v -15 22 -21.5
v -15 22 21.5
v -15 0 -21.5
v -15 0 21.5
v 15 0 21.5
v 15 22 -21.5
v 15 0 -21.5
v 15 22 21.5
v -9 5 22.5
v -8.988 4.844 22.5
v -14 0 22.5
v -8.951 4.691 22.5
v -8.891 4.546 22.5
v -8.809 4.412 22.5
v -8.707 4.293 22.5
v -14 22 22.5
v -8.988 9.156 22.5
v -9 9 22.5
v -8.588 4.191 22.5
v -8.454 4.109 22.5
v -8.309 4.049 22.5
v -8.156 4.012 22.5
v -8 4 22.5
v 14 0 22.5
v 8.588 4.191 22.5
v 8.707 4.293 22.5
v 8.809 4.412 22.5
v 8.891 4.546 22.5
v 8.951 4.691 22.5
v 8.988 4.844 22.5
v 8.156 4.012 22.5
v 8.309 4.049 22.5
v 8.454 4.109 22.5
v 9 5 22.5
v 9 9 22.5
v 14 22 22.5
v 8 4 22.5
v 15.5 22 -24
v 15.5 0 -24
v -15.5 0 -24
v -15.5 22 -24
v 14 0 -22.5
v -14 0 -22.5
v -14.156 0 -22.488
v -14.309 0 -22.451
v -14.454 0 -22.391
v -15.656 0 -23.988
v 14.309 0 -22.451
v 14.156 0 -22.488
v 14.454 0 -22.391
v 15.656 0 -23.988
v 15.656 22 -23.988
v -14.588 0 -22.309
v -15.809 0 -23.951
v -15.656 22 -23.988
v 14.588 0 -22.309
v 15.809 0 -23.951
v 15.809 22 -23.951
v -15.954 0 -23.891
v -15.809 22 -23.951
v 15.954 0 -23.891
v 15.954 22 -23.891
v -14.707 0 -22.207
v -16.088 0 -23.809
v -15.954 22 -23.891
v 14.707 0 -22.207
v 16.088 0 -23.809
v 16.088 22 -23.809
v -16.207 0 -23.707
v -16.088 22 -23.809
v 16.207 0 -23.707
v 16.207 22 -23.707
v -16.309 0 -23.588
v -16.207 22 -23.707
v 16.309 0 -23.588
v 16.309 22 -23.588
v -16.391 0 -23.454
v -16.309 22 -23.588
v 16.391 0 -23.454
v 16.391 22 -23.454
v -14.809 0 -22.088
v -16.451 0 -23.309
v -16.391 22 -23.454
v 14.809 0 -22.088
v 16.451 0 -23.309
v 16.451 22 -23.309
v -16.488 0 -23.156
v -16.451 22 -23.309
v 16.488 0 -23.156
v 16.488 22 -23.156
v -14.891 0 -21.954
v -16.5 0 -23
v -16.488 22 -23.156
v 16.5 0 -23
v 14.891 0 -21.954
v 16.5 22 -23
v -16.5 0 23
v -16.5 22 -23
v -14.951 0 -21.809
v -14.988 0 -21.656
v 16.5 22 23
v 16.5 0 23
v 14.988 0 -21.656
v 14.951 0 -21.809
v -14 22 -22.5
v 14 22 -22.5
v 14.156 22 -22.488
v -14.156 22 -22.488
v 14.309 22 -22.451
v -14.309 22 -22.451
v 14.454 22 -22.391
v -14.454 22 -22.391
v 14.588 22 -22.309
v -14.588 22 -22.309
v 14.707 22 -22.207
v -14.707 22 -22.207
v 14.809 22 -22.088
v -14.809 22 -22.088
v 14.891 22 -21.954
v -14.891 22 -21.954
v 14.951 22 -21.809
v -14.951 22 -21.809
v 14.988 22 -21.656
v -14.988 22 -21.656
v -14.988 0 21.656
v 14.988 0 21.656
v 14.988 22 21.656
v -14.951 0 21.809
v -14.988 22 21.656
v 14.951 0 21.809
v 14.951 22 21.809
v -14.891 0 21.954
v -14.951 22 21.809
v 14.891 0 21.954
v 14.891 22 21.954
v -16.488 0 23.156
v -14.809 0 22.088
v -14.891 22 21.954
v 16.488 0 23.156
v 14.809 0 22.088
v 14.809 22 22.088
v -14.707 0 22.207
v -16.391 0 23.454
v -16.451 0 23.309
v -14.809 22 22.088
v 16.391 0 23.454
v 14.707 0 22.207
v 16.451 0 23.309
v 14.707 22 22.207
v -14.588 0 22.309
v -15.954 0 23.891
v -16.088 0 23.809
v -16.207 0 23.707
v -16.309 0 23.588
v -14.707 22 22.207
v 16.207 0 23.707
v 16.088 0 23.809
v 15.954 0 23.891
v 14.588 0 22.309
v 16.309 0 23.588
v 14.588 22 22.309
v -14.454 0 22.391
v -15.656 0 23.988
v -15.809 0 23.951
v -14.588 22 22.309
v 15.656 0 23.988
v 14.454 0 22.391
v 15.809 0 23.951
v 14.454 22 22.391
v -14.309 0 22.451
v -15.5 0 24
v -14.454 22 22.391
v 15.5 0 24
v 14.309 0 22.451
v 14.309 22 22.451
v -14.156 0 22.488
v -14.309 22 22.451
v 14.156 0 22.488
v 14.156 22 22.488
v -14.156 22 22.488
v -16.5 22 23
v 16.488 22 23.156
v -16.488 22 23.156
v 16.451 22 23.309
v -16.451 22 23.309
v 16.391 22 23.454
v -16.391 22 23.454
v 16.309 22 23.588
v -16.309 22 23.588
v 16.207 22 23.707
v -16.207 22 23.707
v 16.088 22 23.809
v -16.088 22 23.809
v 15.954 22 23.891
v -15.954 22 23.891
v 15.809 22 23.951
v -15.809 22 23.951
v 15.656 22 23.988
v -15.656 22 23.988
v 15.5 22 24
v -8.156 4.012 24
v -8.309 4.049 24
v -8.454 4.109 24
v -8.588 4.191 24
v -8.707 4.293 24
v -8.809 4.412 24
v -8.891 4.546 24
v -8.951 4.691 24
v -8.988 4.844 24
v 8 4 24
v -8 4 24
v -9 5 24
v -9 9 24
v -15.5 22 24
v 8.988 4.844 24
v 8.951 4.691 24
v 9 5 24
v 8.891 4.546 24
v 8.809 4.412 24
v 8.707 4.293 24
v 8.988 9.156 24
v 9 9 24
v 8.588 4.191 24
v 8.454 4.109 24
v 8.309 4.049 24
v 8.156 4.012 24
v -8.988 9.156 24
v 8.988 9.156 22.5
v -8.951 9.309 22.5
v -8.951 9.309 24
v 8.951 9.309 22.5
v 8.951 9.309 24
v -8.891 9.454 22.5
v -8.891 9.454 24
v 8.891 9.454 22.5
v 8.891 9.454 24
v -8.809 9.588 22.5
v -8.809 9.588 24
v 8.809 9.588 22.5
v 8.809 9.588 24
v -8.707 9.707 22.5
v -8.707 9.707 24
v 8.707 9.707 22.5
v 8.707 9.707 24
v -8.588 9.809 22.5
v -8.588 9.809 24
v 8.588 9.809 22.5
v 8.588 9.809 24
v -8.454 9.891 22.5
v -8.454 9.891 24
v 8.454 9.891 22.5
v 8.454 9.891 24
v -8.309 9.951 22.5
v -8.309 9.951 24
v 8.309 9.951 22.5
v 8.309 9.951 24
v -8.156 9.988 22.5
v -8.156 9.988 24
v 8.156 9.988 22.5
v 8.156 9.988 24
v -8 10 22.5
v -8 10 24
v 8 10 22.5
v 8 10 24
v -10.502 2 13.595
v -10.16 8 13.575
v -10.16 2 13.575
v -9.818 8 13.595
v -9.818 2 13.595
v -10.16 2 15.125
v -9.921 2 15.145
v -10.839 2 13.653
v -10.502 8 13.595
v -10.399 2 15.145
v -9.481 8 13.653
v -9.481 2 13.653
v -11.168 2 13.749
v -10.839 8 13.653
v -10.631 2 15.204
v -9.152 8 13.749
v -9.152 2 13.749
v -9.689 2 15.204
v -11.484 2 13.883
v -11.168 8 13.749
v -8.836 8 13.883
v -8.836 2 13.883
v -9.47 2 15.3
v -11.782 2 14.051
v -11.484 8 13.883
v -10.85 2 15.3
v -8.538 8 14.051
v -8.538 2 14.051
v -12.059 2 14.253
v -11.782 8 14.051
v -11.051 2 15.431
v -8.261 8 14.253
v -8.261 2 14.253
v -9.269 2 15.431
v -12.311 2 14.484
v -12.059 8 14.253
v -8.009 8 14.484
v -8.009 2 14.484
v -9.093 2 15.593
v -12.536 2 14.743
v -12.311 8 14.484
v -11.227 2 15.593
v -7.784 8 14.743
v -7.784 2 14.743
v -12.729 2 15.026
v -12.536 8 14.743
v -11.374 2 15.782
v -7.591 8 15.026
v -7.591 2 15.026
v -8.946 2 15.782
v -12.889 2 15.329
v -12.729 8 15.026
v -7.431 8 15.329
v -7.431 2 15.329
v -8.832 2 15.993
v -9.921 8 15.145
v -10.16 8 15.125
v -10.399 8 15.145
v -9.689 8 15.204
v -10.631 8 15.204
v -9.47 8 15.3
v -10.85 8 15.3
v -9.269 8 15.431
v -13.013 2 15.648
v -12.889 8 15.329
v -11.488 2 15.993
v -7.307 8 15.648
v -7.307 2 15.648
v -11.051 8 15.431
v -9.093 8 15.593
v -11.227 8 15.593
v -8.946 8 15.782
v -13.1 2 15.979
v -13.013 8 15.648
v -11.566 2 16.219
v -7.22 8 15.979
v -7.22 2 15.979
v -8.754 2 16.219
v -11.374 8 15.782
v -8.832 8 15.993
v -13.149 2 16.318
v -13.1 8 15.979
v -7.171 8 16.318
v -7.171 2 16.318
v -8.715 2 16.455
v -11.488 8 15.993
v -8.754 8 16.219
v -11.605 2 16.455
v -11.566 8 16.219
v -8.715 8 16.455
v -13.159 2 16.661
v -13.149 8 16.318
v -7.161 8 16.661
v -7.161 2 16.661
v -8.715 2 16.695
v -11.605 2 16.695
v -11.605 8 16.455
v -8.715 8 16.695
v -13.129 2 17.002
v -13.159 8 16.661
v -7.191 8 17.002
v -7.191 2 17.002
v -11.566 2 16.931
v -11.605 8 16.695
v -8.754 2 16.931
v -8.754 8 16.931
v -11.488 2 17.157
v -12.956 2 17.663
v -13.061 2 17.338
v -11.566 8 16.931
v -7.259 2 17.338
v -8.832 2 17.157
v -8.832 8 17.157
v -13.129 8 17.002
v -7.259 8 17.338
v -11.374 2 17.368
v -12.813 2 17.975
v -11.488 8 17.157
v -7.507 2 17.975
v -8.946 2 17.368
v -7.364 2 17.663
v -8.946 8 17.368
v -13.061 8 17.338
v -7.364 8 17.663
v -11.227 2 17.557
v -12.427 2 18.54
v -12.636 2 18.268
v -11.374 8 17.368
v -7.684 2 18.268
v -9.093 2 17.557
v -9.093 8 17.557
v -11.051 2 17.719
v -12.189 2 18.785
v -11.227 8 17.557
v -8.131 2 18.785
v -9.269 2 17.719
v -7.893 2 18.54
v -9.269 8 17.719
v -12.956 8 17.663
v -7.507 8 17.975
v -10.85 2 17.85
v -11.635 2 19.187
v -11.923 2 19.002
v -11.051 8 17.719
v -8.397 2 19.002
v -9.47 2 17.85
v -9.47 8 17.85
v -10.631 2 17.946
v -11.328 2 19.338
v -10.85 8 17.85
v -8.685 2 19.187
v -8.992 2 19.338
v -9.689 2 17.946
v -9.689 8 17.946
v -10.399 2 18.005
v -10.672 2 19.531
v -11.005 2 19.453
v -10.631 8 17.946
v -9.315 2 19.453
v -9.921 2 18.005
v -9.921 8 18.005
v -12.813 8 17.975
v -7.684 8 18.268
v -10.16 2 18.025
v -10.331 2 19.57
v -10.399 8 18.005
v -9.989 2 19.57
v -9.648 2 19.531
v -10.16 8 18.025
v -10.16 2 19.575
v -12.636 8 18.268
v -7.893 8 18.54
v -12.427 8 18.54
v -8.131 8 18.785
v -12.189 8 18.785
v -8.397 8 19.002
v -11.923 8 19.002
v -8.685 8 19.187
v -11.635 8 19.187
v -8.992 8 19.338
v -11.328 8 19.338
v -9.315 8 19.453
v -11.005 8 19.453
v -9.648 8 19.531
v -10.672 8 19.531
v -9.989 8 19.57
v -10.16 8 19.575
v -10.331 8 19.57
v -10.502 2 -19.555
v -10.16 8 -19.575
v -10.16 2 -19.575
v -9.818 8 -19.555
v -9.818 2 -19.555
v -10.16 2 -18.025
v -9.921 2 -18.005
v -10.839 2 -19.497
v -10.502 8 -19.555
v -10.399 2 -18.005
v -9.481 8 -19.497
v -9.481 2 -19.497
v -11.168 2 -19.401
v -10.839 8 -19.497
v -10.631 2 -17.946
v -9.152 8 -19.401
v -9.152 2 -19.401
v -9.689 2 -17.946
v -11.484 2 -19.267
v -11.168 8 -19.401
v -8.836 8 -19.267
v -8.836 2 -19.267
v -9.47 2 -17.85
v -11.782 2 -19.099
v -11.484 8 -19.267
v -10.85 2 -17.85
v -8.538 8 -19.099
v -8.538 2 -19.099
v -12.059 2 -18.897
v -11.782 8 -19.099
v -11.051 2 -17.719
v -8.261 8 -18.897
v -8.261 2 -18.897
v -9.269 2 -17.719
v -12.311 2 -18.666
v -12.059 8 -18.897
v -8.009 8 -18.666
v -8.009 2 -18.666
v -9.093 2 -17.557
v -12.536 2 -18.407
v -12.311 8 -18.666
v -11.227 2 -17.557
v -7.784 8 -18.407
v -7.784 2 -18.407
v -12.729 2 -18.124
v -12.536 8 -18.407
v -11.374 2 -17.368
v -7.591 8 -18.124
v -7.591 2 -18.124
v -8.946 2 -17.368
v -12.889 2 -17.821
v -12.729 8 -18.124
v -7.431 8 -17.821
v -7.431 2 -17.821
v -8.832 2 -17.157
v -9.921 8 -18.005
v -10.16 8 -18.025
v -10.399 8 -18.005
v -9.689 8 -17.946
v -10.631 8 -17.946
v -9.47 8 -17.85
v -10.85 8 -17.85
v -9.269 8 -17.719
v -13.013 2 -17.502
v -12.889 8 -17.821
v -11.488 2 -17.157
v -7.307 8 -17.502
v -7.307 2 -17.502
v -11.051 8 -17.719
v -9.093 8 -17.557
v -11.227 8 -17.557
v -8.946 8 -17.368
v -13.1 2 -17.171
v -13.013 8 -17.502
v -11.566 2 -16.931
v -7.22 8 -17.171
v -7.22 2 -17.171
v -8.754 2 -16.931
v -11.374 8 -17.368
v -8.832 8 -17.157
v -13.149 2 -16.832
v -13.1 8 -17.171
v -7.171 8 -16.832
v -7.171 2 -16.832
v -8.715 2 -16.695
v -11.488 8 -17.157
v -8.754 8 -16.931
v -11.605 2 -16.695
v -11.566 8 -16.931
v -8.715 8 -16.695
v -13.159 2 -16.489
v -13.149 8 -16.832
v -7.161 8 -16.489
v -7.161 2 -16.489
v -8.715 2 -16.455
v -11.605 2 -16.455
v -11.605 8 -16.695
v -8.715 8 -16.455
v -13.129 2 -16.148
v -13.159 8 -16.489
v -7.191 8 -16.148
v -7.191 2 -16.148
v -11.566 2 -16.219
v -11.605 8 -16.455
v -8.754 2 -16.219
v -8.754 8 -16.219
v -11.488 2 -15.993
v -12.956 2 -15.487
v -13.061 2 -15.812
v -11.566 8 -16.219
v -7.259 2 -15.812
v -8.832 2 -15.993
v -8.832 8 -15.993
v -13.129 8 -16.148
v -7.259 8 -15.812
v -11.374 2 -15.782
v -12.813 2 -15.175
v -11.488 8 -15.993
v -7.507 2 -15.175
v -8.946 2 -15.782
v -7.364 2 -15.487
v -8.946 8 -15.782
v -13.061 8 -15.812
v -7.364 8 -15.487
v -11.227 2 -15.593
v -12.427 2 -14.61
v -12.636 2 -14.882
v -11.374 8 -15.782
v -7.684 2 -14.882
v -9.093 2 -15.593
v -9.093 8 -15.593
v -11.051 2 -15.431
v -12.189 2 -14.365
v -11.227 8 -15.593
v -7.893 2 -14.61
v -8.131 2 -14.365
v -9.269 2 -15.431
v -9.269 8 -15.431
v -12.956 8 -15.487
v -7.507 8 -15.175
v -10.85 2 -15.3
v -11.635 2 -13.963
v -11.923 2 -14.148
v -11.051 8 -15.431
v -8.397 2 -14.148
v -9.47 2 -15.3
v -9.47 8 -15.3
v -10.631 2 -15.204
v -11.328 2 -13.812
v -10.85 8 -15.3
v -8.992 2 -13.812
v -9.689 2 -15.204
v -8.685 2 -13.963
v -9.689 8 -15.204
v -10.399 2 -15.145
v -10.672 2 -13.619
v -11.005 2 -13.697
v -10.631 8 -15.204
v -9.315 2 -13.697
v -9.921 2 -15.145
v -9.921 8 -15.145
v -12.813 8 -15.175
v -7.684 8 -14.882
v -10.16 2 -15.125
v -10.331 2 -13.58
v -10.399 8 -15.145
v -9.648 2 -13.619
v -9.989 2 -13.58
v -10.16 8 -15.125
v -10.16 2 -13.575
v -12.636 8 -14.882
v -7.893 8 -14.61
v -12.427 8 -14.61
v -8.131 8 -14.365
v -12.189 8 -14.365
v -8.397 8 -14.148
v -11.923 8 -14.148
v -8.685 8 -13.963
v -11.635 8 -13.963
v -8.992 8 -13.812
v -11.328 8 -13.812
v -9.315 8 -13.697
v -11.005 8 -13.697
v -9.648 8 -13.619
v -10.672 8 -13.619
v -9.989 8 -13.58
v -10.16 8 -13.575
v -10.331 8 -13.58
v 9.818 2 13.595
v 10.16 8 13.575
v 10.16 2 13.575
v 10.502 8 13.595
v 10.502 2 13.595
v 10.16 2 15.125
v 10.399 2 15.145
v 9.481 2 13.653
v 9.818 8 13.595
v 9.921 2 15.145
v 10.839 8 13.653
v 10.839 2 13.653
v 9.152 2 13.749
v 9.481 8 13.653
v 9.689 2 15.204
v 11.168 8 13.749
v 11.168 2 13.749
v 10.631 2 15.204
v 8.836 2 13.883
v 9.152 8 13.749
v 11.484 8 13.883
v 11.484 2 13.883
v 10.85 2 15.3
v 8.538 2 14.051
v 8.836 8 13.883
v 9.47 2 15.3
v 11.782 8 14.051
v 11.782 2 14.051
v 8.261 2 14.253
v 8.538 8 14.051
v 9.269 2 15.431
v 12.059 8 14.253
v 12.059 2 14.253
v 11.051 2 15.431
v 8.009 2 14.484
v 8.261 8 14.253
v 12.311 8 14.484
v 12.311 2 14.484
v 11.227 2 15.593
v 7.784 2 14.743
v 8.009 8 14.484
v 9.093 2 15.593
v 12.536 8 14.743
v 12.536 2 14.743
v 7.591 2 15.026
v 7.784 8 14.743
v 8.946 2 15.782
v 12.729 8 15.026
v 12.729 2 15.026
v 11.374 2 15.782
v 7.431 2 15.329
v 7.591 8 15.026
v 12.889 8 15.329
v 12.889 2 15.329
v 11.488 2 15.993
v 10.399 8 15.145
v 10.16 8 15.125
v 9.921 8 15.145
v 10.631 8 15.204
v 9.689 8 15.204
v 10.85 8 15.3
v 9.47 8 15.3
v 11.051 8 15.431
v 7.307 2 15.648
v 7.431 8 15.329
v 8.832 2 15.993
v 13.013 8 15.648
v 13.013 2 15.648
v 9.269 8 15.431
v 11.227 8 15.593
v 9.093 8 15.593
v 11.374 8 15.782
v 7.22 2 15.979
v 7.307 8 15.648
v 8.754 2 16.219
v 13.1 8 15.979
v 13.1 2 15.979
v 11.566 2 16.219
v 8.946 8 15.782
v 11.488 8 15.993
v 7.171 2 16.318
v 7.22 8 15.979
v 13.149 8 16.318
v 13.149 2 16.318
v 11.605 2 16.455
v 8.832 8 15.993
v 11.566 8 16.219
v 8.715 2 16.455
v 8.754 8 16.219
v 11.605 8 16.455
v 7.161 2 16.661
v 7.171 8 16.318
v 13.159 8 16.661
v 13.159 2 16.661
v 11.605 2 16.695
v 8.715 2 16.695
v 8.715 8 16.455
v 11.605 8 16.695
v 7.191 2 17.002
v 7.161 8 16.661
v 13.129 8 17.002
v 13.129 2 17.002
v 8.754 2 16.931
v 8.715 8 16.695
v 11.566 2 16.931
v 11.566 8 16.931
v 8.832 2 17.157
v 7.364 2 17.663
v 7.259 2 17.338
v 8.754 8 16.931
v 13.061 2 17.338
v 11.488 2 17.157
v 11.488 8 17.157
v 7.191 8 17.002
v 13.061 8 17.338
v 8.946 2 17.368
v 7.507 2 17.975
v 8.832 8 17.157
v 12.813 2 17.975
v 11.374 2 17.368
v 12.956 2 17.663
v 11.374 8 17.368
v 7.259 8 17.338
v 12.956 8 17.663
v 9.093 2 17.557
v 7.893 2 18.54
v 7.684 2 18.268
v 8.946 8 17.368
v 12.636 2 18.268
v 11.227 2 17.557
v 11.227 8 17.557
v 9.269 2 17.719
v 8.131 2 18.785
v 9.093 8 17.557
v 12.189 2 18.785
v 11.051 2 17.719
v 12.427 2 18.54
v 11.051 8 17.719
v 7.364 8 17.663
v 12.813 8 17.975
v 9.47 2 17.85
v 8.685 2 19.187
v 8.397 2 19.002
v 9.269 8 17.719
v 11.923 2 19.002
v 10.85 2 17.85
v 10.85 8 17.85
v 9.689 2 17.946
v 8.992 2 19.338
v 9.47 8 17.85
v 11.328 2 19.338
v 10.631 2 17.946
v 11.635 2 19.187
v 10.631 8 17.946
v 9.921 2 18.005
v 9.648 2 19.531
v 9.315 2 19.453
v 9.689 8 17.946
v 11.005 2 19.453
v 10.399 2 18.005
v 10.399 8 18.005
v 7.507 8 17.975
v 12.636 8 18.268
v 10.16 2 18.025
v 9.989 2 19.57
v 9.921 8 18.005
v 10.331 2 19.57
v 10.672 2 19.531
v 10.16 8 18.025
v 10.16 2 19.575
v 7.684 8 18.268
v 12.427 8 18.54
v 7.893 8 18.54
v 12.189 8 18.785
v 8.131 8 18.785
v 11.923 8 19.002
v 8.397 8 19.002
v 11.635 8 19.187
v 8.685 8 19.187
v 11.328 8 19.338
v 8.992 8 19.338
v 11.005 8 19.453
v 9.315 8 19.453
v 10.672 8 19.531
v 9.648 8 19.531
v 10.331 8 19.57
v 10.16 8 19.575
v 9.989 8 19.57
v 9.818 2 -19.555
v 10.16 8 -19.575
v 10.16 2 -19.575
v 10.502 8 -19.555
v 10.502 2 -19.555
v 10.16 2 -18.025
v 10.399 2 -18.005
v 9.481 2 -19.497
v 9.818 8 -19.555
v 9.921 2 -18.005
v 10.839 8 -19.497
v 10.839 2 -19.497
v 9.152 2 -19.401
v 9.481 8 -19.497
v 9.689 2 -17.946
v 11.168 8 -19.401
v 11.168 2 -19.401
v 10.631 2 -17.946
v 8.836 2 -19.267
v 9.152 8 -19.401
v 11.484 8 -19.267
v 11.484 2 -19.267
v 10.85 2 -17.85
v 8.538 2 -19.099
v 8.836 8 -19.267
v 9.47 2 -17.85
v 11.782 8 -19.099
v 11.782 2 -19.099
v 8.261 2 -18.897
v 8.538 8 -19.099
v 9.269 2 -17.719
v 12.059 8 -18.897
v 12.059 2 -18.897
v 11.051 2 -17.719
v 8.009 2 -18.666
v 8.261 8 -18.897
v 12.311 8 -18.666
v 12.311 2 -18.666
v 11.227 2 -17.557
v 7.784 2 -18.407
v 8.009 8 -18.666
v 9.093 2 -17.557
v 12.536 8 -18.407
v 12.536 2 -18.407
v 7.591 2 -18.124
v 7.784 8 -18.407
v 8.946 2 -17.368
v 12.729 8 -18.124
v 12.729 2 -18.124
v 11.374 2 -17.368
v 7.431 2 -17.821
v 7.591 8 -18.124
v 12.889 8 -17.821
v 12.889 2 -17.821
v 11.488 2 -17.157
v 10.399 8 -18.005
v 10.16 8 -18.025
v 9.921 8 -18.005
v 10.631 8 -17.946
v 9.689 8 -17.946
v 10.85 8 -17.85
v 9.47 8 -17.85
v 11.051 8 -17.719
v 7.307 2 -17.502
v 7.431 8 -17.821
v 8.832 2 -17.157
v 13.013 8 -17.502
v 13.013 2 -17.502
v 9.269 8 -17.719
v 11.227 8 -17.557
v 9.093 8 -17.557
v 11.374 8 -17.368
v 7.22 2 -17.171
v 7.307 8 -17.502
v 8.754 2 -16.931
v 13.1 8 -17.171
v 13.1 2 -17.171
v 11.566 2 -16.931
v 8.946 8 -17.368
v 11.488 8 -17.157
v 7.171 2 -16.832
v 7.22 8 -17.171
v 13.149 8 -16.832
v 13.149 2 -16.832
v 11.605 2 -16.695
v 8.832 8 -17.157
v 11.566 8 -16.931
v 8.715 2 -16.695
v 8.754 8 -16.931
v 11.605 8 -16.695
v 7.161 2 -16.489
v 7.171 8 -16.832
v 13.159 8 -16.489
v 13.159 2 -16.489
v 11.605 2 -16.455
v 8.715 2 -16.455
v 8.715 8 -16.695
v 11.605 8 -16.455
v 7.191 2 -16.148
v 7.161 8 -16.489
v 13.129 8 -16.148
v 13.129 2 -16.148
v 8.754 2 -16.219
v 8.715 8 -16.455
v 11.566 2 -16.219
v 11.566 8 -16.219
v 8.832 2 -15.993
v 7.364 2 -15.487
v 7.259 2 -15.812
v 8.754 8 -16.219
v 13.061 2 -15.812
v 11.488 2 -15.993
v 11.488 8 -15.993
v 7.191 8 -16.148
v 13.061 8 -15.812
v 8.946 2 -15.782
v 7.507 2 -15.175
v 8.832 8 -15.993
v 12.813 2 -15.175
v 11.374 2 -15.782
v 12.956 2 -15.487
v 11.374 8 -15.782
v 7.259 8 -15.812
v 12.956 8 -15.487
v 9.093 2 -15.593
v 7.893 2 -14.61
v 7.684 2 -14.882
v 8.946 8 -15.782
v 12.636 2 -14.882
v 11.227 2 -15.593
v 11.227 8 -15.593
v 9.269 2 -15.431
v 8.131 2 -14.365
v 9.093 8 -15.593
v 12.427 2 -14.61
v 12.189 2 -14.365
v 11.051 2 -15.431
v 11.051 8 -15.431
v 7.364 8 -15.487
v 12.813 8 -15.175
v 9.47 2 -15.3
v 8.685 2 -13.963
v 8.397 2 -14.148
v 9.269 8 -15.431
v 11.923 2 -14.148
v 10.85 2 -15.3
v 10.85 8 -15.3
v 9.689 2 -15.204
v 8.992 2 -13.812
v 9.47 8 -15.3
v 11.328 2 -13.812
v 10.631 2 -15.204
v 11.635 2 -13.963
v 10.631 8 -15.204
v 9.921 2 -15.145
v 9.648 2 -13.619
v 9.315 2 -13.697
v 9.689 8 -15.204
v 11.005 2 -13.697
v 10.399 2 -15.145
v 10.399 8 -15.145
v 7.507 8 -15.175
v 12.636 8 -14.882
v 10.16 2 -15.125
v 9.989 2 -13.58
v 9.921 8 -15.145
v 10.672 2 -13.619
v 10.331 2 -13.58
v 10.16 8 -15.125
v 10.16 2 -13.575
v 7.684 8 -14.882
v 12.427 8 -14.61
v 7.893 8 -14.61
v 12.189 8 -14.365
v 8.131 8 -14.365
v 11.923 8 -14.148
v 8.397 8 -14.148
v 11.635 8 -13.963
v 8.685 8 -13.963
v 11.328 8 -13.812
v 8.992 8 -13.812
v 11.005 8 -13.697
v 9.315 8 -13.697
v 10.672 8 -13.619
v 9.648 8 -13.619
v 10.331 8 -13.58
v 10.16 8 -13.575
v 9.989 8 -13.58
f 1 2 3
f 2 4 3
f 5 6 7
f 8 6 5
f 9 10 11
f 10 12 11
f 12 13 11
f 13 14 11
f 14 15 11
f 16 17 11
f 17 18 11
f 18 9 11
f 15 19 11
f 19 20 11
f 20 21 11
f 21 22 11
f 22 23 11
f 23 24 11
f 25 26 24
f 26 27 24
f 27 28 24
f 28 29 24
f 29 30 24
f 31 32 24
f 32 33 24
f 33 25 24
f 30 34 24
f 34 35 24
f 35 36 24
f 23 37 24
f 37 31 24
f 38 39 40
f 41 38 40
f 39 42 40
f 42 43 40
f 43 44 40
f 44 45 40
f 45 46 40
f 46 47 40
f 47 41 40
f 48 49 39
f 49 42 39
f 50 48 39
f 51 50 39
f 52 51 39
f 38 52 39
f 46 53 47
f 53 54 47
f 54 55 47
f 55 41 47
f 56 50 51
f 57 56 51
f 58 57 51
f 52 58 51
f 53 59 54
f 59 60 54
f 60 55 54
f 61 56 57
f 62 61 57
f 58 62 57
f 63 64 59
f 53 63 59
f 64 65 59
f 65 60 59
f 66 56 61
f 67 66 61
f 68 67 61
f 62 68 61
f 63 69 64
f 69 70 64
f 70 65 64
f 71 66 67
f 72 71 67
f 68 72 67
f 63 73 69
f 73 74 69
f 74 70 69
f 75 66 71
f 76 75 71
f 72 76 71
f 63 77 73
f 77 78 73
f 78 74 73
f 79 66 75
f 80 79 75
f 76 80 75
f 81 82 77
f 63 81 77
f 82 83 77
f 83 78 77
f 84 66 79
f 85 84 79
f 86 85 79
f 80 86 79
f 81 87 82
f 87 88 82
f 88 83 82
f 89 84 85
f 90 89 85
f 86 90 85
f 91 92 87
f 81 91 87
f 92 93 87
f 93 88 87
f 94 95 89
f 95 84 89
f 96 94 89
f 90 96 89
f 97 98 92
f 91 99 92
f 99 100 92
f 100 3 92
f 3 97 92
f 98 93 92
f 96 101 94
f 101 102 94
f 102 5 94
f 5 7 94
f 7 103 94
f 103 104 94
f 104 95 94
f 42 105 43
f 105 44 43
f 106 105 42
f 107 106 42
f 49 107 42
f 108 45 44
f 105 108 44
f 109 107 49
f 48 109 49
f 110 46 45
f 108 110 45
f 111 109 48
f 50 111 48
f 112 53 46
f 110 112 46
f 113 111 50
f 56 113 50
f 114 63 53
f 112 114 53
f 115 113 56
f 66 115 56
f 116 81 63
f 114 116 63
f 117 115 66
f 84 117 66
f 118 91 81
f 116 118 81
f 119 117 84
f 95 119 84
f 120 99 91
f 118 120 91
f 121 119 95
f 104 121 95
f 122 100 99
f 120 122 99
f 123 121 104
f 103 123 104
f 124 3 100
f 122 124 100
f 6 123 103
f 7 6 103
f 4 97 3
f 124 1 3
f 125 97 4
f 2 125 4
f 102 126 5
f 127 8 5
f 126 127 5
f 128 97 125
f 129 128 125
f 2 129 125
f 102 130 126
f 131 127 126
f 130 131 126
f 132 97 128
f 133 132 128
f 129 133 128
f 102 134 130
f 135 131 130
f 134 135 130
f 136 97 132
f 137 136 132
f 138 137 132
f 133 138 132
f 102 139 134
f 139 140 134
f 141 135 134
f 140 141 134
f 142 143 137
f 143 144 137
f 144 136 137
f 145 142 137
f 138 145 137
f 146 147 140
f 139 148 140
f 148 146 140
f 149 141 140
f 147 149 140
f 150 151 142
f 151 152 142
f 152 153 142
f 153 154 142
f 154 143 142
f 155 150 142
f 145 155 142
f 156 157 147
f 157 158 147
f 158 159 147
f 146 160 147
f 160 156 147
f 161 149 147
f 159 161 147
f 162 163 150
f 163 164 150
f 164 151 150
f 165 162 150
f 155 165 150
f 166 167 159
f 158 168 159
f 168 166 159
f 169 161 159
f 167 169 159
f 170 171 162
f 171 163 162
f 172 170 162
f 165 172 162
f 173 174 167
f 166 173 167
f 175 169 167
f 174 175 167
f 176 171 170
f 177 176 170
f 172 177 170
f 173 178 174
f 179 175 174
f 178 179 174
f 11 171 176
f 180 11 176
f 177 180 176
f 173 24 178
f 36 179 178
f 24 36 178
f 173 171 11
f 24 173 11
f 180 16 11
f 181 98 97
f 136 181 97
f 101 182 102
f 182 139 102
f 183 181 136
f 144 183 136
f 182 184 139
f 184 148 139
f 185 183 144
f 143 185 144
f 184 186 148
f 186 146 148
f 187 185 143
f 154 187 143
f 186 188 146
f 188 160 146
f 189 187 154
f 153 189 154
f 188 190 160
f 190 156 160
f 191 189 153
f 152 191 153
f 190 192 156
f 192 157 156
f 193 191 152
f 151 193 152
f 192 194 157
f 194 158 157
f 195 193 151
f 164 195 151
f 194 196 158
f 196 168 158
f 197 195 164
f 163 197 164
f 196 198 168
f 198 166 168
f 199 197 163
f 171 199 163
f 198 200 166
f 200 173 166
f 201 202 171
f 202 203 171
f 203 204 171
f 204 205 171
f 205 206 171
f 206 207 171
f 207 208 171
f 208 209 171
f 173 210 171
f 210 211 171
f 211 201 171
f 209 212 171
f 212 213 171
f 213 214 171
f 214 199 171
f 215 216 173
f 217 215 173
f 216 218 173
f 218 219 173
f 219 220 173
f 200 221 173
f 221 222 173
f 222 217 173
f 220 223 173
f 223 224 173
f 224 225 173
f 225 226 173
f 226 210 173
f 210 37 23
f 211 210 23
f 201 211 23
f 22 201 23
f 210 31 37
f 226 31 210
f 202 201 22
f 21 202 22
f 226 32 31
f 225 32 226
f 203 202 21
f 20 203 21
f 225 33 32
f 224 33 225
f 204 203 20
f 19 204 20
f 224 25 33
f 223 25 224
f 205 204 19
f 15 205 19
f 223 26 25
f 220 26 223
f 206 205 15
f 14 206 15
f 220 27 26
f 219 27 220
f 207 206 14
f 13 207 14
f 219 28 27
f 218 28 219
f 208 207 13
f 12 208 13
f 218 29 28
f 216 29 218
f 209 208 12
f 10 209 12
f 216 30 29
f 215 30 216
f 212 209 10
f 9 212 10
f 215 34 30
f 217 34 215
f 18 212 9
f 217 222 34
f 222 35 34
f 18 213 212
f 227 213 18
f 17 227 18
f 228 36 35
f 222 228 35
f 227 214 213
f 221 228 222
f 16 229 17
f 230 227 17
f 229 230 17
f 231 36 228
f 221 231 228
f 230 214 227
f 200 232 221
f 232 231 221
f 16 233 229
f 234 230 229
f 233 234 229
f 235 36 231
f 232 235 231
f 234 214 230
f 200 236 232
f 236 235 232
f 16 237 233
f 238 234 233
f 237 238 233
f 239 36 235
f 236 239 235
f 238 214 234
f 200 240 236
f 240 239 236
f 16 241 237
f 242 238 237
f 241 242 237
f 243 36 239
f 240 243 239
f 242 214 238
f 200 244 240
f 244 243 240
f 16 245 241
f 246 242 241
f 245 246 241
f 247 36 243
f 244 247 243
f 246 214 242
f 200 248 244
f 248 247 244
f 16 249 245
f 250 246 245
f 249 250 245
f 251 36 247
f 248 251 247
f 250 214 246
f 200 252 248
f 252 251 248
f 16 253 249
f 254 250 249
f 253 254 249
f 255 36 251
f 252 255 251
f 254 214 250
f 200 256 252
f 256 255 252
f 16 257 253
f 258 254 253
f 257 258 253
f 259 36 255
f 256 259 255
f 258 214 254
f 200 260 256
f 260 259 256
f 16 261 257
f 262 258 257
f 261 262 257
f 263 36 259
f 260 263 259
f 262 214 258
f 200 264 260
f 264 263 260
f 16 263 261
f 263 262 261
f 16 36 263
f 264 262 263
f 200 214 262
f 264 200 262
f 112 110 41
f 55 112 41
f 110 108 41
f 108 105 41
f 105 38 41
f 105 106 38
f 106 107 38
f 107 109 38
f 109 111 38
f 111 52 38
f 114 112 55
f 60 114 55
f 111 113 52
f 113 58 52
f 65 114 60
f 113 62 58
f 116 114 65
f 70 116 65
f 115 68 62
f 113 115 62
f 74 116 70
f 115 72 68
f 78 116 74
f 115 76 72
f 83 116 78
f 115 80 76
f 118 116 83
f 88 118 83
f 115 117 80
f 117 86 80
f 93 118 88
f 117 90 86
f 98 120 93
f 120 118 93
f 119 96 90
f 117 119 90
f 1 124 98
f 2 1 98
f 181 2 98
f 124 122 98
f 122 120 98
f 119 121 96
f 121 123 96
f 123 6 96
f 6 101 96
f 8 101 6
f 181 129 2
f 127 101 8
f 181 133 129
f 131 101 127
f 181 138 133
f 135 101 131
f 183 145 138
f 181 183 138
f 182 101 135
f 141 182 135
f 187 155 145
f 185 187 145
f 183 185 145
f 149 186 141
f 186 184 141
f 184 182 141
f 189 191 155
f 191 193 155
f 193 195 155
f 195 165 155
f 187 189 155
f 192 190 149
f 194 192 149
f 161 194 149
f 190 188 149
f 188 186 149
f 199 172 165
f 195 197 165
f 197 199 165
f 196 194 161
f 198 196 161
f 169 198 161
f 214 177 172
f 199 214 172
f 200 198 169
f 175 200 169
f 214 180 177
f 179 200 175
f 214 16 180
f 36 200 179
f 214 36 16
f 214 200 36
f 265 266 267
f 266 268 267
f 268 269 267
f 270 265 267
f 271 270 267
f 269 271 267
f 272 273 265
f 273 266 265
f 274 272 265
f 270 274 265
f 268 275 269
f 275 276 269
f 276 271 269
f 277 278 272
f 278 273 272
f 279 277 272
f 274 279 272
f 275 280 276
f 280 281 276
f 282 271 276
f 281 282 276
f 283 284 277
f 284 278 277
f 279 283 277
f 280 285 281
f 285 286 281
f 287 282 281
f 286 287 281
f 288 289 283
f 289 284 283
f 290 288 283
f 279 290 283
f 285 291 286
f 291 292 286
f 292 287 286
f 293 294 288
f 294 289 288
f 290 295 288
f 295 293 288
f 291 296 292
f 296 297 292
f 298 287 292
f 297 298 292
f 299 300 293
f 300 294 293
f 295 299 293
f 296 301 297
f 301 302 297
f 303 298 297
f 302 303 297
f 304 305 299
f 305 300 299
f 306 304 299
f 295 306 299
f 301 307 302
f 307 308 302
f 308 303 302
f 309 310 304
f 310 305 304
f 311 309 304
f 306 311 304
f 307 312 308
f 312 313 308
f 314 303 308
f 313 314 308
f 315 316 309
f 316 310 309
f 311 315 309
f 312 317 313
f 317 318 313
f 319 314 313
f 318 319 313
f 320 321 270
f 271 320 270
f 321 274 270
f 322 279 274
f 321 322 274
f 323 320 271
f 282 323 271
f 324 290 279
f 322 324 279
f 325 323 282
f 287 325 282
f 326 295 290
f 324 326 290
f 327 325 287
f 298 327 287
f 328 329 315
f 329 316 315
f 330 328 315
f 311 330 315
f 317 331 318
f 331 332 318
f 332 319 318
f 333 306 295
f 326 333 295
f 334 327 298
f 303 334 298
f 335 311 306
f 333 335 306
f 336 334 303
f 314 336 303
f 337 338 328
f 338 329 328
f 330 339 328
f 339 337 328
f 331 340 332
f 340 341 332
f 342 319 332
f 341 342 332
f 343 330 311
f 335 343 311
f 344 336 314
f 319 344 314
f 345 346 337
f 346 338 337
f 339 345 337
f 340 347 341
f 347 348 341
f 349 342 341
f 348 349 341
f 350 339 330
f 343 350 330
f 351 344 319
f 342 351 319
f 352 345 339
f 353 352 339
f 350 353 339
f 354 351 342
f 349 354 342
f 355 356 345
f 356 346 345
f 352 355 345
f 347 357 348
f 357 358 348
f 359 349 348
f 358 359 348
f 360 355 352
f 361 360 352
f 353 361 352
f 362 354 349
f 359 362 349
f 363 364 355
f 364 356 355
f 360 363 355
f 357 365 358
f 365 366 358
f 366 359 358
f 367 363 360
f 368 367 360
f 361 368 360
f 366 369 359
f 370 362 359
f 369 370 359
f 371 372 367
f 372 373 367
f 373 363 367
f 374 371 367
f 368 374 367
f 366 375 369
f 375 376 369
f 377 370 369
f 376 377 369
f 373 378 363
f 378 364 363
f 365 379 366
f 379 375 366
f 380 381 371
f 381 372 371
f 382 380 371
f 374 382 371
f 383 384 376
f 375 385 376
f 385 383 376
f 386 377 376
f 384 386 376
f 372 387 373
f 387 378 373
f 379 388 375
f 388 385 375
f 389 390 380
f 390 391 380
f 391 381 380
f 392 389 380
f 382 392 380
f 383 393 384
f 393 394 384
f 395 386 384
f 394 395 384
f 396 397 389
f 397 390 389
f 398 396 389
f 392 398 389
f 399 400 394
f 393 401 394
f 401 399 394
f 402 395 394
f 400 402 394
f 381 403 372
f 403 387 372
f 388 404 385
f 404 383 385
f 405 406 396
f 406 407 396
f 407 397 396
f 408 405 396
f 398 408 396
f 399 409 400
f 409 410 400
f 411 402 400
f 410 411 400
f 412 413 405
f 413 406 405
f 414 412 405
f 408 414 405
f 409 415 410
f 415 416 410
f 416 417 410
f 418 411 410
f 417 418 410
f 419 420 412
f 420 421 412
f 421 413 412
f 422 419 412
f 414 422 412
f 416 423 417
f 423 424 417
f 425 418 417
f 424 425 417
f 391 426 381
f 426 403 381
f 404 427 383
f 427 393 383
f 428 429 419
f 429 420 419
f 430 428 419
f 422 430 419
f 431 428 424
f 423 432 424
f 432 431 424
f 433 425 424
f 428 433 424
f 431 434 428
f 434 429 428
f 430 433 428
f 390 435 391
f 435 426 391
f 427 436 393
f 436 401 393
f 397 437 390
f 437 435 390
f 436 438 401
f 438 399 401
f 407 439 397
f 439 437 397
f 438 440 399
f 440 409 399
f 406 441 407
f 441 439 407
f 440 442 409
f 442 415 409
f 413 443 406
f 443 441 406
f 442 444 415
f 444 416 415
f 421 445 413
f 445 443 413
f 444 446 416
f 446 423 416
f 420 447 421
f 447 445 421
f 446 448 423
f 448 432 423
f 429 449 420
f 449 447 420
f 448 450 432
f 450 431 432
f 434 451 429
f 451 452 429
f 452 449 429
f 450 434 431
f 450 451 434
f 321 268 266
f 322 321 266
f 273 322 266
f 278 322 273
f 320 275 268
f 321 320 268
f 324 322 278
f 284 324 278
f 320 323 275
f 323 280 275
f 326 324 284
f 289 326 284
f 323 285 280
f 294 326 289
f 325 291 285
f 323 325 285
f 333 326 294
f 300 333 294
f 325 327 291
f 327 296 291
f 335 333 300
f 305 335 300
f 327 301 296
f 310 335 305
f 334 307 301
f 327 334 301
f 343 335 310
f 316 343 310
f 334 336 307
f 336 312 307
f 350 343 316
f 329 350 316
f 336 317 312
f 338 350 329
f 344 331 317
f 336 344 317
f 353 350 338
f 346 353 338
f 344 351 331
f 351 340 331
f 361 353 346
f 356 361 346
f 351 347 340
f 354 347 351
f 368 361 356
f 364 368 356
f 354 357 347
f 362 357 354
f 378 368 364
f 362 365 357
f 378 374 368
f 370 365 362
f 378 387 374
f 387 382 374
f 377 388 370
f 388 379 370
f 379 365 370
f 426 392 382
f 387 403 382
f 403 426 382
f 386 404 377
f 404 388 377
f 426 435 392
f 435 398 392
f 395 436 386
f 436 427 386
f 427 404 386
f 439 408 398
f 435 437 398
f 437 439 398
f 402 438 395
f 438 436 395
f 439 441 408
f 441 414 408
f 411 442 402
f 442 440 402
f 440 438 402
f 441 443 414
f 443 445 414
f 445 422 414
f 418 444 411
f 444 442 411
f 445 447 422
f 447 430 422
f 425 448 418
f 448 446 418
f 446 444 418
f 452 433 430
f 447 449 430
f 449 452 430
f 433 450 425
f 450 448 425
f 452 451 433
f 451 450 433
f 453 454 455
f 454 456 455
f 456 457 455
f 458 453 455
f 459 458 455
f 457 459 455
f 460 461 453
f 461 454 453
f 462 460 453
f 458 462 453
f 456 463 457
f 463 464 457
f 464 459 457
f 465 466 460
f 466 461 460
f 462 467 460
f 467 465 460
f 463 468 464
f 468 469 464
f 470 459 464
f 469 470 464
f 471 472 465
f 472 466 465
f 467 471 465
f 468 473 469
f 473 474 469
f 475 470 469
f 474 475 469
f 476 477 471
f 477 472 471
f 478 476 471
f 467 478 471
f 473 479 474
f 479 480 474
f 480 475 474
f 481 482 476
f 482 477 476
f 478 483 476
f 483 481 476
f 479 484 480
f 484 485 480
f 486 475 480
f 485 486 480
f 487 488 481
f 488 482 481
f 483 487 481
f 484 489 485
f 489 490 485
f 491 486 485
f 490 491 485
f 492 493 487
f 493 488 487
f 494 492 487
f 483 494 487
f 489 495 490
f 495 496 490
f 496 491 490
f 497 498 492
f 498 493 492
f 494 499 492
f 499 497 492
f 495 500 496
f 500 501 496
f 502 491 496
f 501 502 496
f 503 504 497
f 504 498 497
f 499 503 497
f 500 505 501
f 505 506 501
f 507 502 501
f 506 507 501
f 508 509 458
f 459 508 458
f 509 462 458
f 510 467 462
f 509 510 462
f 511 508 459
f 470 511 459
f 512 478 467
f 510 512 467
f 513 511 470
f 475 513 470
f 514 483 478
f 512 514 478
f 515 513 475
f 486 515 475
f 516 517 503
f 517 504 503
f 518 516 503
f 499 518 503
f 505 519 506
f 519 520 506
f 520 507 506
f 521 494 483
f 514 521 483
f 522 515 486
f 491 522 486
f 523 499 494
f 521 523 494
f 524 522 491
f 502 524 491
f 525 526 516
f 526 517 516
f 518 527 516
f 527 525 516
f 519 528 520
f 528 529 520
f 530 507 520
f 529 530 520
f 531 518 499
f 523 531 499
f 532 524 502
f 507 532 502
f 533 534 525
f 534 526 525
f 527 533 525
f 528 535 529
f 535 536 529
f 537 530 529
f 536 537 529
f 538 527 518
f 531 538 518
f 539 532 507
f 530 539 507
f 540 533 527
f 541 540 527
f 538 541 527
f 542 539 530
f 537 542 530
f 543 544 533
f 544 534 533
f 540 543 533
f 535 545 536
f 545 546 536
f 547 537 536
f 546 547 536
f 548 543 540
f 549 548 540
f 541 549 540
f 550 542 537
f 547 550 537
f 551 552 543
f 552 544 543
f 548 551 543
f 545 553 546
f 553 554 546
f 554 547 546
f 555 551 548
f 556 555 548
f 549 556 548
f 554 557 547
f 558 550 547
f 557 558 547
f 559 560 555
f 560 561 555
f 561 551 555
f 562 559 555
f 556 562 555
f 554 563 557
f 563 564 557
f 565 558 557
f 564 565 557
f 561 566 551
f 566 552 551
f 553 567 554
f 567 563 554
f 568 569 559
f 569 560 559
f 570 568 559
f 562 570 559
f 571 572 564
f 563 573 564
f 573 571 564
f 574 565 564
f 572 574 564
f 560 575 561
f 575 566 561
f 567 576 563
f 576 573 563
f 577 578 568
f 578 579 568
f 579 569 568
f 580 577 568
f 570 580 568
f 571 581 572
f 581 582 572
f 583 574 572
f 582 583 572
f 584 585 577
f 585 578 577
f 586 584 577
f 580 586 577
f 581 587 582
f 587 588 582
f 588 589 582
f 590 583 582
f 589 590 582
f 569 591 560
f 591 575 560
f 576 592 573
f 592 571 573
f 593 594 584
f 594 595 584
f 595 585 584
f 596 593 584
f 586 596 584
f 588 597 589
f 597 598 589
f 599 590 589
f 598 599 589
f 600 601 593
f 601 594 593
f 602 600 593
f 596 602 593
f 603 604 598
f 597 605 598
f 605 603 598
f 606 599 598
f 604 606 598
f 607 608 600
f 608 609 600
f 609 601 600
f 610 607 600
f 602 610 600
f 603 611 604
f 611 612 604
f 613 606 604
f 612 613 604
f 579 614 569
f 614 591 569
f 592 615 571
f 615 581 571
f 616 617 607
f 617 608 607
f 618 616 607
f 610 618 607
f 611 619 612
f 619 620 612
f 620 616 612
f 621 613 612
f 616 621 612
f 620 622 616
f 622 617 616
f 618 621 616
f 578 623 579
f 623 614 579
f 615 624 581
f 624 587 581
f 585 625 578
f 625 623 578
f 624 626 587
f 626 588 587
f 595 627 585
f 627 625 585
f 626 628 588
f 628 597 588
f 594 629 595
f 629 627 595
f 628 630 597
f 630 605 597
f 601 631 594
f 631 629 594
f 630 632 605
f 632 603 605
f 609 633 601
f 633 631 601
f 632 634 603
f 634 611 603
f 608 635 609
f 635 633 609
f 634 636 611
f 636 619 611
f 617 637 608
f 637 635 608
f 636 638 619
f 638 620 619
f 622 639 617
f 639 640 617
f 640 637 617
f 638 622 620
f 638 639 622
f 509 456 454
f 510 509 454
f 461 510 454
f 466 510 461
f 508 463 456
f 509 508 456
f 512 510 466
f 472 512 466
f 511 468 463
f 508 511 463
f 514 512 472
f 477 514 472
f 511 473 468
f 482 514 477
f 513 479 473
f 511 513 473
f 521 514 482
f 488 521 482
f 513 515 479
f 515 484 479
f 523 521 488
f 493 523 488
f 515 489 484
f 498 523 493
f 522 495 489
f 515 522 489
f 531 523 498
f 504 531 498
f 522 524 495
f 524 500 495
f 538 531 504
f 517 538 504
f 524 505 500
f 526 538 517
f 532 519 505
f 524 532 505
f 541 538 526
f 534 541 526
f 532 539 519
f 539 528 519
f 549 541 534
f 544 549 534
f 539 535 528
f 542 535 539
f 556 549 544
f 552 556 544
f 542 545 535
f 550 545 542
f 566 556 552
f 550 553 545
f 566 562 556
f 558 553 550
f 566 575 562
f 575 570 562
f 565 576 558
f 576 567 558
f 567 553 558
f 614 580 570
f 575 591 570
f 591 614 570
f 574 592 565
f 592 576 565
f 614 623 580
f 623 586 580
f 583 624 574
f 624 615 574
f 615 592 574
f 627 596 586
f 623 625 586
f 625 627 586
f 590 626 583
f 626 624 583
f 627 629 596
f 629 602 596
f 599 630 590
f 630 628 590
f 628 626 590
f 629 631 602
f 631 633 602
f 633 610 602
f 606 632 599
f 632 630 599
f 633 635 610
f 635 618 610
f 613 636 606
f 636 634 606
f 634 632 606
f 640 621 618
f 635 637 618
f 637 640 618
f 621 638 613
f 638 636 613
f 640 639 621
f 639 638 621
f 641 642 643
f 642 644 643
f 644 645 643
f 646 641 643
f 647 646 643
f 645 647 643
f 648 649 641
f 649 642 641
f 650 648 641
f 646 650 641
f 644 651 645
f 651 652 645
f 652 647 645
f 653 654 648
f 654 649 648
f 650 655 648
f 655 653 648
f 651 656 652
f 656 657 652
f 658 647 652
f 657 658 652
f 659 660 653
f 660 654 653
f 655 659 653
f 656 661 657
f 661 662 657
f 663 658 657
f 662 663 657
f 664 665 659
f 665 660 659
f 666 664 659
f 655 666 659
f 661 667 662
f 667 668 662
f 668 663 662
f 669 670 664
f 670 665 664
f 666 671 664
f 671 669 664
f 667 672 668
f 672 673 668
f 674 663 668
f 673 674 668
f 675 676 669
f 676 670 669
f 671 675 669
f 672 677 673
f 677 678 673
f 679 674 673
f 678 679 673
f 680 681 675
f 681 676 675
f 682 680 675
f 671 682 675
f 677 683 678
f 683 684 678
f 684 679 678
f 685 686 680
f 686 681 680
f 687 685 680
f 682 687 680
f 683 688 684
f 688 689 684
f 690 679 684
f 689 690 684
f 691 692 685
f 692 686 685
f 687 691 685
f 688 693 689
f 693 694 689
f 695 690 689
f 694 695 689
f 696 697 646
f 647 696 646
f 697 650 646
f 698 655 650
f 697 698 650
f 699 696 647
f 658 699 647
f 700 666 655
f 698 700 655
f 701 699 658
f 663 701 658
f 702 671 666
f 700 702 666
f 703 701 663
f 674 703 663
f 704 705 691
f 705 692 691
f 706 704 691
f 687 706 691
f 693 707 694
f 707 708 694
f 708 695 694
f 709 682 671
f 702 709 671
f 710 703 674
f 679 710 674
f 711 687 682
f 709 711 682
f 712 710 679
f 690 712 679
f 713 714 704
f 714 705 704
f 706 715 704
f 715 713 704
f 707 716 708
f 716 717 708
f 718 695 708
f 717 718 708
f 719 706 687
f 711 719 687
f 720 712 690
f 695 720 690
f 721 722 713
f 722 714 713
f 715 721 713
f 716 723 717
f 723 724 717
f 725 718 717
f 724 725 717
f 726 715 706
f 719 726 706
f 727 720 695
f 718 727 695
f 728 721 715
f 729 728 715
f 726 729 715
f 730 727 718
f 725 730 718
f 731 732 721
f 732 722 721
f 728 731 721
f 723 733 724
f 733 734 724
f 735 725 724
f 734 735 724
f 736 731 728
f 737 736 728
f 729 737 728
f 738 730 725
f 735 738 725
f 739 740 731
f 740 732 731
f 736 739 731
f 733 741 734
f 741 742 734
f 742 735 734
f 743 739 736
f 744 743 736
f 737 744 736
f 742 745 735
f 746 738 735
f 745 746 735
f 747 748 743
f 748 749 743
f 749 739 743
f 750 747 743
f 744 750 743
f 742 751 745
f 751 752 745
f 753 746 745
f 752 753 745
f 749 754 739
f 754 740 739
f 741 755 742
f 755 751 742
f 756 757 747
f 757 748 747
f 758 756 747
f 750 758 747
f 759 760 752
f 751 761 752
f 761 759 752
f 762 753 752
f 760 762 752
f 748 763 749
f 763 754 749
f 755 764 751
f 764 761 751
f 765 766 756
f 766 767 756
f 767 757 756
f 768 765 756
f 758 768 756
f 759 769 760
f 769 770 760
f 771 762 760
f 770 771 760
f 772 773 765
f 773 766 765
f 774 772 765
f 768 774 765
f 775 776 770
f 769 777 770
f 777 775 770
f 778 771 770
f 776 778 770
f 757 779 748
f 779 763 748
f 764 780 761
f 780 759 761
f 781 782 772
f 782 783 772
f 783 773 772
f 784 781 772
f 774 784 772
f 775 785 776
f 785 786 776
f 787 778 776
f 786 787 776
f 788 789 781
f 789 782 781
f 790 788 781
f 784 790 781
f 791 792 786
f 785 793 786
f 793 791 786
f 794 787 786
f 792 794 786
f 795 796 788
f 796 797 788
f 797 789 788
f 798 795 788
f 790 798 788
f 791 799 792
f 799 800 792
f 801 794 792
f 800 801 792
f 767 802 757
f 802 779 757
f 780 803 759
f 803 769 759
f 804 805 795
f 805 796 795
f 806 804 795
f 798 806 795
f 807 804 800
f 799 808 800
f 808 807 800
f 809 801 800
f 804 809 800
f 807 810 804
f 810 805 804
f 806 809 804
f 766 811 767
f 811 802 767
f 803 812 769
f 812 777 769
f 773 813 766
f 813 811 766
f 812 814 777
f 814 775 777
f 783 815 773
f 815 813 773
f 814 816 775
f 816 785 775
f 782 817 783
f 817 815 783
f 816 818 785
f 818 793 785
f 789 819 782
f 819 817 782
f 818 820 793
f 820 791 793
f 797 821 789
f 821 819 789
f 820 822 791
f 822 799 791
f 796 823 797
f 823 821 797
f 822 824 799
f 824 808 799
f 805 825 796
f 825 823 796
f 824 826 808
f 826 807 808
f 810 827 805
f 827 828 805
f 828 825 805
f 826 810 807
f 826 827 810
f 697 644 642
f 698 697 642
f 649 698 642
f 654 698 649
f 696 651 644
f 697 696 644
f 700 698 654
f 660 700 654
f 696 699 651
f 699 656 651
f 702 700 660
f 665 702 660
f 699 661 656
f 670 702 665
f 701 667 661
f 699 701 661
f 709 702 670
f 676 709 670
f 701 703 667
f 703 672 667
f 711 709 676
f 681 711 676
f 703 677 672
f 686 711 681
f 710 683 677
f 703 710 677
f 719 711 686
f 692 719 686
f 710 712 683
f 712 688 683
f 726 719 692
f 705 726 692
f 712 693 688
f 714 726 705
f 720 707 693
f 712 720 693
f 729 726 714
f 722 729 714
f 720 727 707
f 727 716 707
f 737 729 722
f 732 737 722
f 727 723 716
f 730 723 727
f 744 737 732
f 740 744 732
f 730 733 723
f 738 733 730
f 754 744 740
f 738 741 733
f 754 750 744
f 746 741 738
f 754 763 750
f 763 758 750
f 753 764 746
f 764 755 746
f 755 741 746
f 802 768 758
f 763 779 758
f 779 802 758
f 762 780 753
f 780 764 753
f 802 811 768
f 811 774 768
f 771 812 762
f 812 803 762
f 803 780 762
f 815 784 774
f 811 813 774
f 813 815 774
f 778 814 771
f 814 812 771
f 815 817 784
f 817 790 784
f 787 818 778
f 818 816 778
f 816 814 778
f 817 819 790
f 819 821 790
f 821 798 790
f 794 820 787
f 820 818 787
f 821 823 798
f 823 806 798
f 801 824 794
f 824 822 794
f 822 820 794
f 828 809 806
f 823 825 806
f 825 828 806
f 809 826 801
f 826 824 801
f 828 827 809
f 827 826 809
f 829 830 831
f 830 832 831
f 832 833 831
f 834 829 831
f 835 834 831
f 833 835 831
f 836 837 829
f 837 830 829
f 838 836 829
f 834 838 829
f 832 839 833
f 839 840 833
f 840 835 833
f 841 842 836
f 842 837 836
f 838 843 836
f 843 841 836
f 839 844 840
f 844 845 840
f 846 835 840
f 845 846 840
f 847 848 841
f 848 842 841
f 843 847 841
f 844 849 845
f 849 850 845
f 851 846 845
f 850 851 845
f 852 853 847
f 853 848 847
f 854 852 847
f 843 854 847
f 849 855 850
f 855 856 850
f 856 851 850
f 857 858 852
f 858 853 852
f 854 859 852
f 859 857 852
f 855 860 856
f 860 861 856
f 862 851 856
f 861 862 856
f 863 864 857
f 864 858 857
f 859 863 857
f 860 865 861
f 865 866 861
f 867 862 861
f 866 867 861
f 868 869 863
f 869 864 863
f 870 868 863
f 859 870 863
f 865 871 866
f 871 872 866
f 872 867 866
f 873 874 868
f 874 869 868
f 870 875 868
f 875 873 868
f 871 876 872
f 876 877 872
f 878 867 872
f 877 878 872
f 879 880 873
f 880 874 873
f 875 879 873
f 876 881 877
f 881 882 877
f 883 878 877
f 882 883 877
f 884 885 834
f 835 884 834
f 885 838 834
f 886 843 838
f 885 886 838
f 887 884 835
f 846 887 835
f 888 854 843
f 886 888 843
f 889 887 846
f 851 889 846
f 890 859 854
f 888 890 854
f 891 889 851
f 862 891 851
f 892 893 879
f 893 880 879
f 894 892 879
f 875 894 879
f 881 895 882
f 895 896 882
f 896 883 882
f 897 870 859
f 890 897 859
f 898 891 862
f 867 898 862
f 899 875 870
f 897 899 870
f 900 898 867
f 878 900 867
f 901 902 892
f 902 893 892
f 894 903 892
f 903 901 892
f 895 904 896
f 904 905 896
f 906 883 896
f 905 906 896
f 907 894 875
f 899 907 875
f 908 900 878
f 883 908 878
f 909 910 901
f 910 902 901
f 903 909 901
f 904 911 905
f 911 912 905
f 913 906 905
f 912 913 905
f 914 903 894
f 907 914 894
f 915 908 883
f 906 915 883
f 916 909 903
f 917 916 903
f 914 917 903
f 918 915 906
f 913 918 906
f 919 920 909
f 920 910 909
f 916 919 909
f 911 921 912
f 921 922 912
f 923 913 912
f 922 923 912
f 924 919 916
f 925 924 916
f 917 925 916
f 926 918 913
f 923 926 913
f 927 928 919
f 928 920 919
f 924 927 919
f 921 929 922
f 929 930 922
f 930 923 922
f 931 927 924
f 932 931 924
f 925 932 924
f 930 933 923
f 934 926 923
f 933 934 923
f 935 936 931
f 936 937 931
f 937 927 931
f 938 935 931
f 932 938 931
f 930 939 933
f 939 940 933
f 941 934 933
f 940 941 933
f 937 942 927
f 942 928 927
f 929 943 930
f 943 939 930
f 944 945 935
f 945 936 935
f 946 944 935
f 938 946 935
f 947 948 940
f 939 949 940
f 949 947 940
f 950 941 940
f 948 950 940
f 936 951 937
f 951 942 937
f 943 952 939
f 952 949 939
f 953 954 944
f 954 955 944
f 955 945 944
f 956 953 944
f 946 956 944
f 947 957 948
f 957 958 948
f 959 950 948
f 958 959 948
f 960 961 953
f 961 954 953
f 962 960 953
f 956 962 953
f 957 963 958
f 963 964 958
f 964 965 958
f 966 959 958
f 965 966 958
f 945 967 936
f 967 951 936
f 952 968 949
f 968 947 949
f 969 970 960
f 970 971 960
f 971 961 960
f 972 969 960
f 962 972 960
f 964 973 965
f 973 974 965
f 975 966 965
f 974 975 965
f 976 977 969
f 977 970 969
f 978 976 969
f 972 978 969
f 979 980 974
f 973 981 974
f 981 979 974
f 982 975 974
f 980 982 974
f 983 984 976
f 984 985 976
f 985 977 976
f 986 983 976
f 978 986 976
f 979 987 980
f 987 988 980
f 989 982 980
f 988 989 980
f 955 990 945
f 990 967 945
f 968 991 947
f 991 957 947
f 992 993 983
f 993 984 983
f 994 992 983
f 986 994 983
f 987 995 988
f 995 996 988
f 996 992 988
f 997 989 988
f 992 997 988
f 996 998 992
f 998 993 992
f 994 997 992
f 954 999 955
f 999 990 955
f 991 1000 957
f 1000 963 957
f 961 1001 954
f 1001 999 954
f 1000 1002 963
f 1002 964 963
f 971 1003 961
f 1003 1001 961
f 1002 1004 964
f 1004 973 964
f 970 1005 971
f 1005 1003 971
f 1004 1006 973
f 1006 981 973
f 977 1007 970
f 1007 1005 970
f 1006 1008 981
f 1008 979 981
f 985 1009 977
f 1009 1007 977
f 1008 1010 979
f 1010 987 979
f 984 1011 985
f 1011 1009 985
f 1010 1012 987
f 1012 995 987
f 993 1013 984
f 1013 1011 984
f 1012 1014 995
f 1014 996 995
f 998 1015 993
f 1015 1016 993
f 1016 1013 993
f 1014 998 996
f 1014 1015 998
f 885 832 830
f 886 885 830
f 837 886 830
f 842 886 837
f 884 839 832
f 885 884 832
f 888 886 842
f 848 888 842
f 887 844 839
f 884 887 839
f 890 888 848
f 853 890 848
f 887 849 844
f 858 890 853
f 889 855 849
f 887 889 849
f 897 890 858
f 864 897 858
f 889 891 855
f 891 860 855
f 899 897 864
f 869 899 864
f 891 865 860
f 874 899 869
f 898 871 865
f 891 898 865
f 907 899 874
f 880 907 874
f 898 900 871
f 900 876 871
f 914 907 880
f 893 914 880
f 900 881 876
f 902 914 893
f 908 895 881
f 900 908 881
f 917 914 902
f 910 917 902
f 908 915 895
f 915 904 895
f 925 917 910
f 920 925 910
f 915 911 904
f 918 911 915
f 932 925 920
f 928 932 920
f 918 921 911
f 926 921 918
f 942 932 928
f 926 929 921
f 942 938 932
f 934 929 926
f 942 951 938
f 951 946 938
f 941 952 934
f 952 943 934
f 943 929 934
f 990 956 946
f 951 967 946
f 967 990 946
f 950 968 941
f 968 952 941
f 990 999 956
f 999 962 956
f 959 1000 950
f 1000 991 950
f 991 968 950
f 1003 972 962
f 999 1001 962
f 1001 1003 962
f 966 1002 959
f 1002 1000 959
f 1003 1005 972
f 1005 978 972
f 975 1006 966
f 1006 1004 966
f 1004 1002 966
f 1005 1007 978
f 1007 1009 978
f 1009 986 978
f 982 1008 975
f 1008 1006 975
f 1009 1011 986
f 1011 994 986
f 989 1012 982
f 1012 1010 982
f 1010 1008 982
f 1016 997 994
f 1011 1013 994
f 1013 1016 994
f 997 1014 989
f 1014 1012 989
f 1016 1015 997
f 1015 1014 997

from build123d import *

# Parameters (mm, degrees)
SKETCH1_W                                      = 33
SKETCH1_H                                      = 48
BOSS_EXTRUDE1_DEPTH                            = 22
SKETCH2_W                                      = 30
SKETCH2_H                                      = 45
CUT_EXTRUDE1_DEPTH                             = 25
SKETCH4_R                                      = 3
BOSS_EXTRUDE5_DEPTH                            = 6
BOSS_EXTRUDE5_2_DEPTH                          = 6
BOSS_EXTRUDE5_3_DEPTH                          = 6
BOSS_EXTRUDE5_4_DEPTH                          = 6
SKETCH11_W                                     = 18
SKETCH11_H                                     = 6
CUT_EXTRUDE5_DEPTH                             = 1.5
FILLET5_R                                      = 1
CSK_FOR_M2_5_FLAT_HEAD_MACHINE_SCREW1_AT_COUNT = 2
CSK_FOR_M2_5_FLAT_HEAD_MACHINE_SCREW1_AT_PITCH = 20.32
CSK_FOR_M2_5_FLAT_HEAD_MACHINE_SCREW_2_COUNT   = 2
CSK_FOR_M2_5_FLAT_HEAD_MACHINE_SCREW_2_PITCH   = 38.882192582
CSK_FOR_M2_5_FLAT_HEAD_MACHINE_SCREW_3_COUNT   = 2
CSK_FOR_M2_5_FLAT_HEAD_MACHINE_SCREW_3_PITCH   = 33.15
FILLET6_R                                      = 1


with BuildPart() as part:
    # Sketch1 → Boss-Extrude1 (new body)
    with BuildSketch(Plane(origin=(0, 0, 0), x_dir=(1, 0, 0), z_dir=(0, 1, 0))):
        Rectangle(SKETCH1_W, SKETCH1_H)
    extrude(amount=BOSS_EXTRUDE1_DEPTH)

    # Sketch2 → Cut-Extrude1 (cut)
    with BuildSketch(Plane(origin=(0, 22, 0), x_dir=(1, 0, 0), z_dir=(0, 1, 0))):
        Rectangle(SKETCH2_W, SKETCH2_H)
    extrude(amount=-CUT_EXTRUDE1_DEPTH, mode=Mode.SUBTRACT)

    # Sketch11 → Cut-Extrude5 (cut)
    with BuildSketch(Plane.XY.offset(24)):
        with Locations((0, 7)):
            Rectangle(SKETCH11_W, SKETCH11_H)
    extrude(amount=-CUT_EXTRUDE5_DEPTH, mode=Mode.SUBTRACT)

    # Fillet5
    fillet5_edges = [part.edges().sort_by_distance(p)[0] for p in [
        (15, 11, -22.5),
        (15, 11, 22.5),
        (-15, 11, 22.5),
        (-15, 11, -22.5),
        (-16.5, 11, -24),
        (-16.5, 11, 24),
        (16.5, 11, 24),
        (16.5, 11, -24),
    ]]
    fillet(fillet5_edges, radius=FILLET5_R)

    # Fillet6
    fillet6_edges = [part.edges().sort_by_distance(p)[0] for p in [
        (9, 10, 23.25),
        (9, 4, 23.25),
        (-9, 4, 23.25),
        (-9, 10, 23.25),
    ]]
    fillet(fillet6_edges, radius=FILLET6_R)


with BuildPart() as body_2:
    # Sketch4 → Boss-Extrude5 (new body)
    with BuildSketch(Plane(origin=(0, 2, 0), x_dir=(1, 0, 0), z_dir=(0, 1, 0))):
        with Locations((-10.16, 16.575)):
            Circle(SKETCH4_R)
    extrude(amount=BOSS_EXTRUDE5_DEPTH)


with BuildPart() as body_3:
    # Sketch4 → Boss-Extrude5 2 (new body)
    with BuildSketch(Plane(origin=(0, 2, 0), x_dir=(1, 0, 0), z_dir=(0, 1, 0))):
        with Locations((10.16, -16.575)):
            Circle(SKETCH4_R)
    extrude(amount=BOSS_EXTRUDE5_2_DEPTH)


with BuildPart() as body_4:
    # Sketch4 → Boss-Extrude5 3 (new body)
    with BuildSketch(Plane(origin=(0, 2, 0), x_dir=(1, 0, 0), z_dir=(0, 1, 0))):
        with Locations((10.16, 16.575)):
            Circle(SKETCH4_R)
    extrude(amount=BOSS_EXTRUDE5_3_DEPTH)


with BuildPart() as body_5:
    # Sketch4 → Boss-Extrude5 4 (new body)
    with BuildSketch(Plane(origin=(0, 2, 0), x_dir=(1, 0, 0), z_dir=(0, 1, 0))):
        with Locations((-10.16, -16.575)):
            Circle(SKETCH4_R)
    extrude(amount=BOSS_EXTRUDE5_4_DEPTH)

    # Sketch13 → CSK for M2.5 Flat Head Machine Screw1 (revolve, cut)
    with BuildSketch(Plane(origin=(-10.16, 0, 16.575), x_dir=(0, 0, -1), z_dir=(1, 0, 0))):
        Polygon((0, 0), (0, 22), (1.45, 22), (1.45, 1.3), (2.75, 0), align=None)
    csk_for_m2_5_flat_head_machine_screw1 = revolve(axis=Axis((-10.16, -6.35, 16.575), (0, 1, 0)), mode=Mode.SUBTRACT)


with BuildPart() as body_3_1:
    add(body_3.part)

    # CSK for M2.5 Flat Head Machine Screw1 at: CSK for M2.5 Flat Head Machine Screw1 ×2
    with Locations(*[(i * CSK_FOR_M2_5_FLAT_HEAD_MACHINE_SCREW1_AT_PITCH, 0, 0) for i in range(1, CSK_FOR_M2_5_FLAT_HEAD_MACHINE_SCREW1_AT_COUNT)]):
        add(csk_for_m2_5_flat_head_machine_screw1, mode=Mode.SUBTRACT)


with BuildPart() as body_4_1:
    add(body_4.part)

    # CSK for M2.5 Flat Head Machine Screw 2: CSK for M2.5 Flat Head Machine Screw1 ×2
    with Locations(*[Vector(0.522604273, 0, -0.852575377) * (i * CSK_FOR_M2_5_FLAT_HEAD_MACHINE_SCREW_2_PITCH) for i in range(1, CSK_FOR_M2_5_FLAT_HEAD_MACHINE_SCREW_2_COUNT)]):
        add(csk_for_m2_5_flat_head_machine_screw1, mode=Mode.SUBTRACT)


with BuildPart() as body_2_1:
    add(body_2.part)

    # CSK for M2.5 Flat Head Machine Screw 3: CSK for M2.5 Flat Head Machine Screw1 ×2
    with Locations(*[(0, 0, -i * CSK_FOR_M2_5_FLAT_HEAD_MACHINE_SCREW_3_PITCH) for i in range(1, CSK_FOR_M2_5_FLAT_HEAD_MACHINE_SCREW_3_COUNT)]):
        add(csk_for_m2_5_flat_head_machine_screw1, mode=Mode.SUBTRACT)


solid = Compound([part.part, body_5.part, body_3_1.part, body_4_1.part, body_2_1.part])
